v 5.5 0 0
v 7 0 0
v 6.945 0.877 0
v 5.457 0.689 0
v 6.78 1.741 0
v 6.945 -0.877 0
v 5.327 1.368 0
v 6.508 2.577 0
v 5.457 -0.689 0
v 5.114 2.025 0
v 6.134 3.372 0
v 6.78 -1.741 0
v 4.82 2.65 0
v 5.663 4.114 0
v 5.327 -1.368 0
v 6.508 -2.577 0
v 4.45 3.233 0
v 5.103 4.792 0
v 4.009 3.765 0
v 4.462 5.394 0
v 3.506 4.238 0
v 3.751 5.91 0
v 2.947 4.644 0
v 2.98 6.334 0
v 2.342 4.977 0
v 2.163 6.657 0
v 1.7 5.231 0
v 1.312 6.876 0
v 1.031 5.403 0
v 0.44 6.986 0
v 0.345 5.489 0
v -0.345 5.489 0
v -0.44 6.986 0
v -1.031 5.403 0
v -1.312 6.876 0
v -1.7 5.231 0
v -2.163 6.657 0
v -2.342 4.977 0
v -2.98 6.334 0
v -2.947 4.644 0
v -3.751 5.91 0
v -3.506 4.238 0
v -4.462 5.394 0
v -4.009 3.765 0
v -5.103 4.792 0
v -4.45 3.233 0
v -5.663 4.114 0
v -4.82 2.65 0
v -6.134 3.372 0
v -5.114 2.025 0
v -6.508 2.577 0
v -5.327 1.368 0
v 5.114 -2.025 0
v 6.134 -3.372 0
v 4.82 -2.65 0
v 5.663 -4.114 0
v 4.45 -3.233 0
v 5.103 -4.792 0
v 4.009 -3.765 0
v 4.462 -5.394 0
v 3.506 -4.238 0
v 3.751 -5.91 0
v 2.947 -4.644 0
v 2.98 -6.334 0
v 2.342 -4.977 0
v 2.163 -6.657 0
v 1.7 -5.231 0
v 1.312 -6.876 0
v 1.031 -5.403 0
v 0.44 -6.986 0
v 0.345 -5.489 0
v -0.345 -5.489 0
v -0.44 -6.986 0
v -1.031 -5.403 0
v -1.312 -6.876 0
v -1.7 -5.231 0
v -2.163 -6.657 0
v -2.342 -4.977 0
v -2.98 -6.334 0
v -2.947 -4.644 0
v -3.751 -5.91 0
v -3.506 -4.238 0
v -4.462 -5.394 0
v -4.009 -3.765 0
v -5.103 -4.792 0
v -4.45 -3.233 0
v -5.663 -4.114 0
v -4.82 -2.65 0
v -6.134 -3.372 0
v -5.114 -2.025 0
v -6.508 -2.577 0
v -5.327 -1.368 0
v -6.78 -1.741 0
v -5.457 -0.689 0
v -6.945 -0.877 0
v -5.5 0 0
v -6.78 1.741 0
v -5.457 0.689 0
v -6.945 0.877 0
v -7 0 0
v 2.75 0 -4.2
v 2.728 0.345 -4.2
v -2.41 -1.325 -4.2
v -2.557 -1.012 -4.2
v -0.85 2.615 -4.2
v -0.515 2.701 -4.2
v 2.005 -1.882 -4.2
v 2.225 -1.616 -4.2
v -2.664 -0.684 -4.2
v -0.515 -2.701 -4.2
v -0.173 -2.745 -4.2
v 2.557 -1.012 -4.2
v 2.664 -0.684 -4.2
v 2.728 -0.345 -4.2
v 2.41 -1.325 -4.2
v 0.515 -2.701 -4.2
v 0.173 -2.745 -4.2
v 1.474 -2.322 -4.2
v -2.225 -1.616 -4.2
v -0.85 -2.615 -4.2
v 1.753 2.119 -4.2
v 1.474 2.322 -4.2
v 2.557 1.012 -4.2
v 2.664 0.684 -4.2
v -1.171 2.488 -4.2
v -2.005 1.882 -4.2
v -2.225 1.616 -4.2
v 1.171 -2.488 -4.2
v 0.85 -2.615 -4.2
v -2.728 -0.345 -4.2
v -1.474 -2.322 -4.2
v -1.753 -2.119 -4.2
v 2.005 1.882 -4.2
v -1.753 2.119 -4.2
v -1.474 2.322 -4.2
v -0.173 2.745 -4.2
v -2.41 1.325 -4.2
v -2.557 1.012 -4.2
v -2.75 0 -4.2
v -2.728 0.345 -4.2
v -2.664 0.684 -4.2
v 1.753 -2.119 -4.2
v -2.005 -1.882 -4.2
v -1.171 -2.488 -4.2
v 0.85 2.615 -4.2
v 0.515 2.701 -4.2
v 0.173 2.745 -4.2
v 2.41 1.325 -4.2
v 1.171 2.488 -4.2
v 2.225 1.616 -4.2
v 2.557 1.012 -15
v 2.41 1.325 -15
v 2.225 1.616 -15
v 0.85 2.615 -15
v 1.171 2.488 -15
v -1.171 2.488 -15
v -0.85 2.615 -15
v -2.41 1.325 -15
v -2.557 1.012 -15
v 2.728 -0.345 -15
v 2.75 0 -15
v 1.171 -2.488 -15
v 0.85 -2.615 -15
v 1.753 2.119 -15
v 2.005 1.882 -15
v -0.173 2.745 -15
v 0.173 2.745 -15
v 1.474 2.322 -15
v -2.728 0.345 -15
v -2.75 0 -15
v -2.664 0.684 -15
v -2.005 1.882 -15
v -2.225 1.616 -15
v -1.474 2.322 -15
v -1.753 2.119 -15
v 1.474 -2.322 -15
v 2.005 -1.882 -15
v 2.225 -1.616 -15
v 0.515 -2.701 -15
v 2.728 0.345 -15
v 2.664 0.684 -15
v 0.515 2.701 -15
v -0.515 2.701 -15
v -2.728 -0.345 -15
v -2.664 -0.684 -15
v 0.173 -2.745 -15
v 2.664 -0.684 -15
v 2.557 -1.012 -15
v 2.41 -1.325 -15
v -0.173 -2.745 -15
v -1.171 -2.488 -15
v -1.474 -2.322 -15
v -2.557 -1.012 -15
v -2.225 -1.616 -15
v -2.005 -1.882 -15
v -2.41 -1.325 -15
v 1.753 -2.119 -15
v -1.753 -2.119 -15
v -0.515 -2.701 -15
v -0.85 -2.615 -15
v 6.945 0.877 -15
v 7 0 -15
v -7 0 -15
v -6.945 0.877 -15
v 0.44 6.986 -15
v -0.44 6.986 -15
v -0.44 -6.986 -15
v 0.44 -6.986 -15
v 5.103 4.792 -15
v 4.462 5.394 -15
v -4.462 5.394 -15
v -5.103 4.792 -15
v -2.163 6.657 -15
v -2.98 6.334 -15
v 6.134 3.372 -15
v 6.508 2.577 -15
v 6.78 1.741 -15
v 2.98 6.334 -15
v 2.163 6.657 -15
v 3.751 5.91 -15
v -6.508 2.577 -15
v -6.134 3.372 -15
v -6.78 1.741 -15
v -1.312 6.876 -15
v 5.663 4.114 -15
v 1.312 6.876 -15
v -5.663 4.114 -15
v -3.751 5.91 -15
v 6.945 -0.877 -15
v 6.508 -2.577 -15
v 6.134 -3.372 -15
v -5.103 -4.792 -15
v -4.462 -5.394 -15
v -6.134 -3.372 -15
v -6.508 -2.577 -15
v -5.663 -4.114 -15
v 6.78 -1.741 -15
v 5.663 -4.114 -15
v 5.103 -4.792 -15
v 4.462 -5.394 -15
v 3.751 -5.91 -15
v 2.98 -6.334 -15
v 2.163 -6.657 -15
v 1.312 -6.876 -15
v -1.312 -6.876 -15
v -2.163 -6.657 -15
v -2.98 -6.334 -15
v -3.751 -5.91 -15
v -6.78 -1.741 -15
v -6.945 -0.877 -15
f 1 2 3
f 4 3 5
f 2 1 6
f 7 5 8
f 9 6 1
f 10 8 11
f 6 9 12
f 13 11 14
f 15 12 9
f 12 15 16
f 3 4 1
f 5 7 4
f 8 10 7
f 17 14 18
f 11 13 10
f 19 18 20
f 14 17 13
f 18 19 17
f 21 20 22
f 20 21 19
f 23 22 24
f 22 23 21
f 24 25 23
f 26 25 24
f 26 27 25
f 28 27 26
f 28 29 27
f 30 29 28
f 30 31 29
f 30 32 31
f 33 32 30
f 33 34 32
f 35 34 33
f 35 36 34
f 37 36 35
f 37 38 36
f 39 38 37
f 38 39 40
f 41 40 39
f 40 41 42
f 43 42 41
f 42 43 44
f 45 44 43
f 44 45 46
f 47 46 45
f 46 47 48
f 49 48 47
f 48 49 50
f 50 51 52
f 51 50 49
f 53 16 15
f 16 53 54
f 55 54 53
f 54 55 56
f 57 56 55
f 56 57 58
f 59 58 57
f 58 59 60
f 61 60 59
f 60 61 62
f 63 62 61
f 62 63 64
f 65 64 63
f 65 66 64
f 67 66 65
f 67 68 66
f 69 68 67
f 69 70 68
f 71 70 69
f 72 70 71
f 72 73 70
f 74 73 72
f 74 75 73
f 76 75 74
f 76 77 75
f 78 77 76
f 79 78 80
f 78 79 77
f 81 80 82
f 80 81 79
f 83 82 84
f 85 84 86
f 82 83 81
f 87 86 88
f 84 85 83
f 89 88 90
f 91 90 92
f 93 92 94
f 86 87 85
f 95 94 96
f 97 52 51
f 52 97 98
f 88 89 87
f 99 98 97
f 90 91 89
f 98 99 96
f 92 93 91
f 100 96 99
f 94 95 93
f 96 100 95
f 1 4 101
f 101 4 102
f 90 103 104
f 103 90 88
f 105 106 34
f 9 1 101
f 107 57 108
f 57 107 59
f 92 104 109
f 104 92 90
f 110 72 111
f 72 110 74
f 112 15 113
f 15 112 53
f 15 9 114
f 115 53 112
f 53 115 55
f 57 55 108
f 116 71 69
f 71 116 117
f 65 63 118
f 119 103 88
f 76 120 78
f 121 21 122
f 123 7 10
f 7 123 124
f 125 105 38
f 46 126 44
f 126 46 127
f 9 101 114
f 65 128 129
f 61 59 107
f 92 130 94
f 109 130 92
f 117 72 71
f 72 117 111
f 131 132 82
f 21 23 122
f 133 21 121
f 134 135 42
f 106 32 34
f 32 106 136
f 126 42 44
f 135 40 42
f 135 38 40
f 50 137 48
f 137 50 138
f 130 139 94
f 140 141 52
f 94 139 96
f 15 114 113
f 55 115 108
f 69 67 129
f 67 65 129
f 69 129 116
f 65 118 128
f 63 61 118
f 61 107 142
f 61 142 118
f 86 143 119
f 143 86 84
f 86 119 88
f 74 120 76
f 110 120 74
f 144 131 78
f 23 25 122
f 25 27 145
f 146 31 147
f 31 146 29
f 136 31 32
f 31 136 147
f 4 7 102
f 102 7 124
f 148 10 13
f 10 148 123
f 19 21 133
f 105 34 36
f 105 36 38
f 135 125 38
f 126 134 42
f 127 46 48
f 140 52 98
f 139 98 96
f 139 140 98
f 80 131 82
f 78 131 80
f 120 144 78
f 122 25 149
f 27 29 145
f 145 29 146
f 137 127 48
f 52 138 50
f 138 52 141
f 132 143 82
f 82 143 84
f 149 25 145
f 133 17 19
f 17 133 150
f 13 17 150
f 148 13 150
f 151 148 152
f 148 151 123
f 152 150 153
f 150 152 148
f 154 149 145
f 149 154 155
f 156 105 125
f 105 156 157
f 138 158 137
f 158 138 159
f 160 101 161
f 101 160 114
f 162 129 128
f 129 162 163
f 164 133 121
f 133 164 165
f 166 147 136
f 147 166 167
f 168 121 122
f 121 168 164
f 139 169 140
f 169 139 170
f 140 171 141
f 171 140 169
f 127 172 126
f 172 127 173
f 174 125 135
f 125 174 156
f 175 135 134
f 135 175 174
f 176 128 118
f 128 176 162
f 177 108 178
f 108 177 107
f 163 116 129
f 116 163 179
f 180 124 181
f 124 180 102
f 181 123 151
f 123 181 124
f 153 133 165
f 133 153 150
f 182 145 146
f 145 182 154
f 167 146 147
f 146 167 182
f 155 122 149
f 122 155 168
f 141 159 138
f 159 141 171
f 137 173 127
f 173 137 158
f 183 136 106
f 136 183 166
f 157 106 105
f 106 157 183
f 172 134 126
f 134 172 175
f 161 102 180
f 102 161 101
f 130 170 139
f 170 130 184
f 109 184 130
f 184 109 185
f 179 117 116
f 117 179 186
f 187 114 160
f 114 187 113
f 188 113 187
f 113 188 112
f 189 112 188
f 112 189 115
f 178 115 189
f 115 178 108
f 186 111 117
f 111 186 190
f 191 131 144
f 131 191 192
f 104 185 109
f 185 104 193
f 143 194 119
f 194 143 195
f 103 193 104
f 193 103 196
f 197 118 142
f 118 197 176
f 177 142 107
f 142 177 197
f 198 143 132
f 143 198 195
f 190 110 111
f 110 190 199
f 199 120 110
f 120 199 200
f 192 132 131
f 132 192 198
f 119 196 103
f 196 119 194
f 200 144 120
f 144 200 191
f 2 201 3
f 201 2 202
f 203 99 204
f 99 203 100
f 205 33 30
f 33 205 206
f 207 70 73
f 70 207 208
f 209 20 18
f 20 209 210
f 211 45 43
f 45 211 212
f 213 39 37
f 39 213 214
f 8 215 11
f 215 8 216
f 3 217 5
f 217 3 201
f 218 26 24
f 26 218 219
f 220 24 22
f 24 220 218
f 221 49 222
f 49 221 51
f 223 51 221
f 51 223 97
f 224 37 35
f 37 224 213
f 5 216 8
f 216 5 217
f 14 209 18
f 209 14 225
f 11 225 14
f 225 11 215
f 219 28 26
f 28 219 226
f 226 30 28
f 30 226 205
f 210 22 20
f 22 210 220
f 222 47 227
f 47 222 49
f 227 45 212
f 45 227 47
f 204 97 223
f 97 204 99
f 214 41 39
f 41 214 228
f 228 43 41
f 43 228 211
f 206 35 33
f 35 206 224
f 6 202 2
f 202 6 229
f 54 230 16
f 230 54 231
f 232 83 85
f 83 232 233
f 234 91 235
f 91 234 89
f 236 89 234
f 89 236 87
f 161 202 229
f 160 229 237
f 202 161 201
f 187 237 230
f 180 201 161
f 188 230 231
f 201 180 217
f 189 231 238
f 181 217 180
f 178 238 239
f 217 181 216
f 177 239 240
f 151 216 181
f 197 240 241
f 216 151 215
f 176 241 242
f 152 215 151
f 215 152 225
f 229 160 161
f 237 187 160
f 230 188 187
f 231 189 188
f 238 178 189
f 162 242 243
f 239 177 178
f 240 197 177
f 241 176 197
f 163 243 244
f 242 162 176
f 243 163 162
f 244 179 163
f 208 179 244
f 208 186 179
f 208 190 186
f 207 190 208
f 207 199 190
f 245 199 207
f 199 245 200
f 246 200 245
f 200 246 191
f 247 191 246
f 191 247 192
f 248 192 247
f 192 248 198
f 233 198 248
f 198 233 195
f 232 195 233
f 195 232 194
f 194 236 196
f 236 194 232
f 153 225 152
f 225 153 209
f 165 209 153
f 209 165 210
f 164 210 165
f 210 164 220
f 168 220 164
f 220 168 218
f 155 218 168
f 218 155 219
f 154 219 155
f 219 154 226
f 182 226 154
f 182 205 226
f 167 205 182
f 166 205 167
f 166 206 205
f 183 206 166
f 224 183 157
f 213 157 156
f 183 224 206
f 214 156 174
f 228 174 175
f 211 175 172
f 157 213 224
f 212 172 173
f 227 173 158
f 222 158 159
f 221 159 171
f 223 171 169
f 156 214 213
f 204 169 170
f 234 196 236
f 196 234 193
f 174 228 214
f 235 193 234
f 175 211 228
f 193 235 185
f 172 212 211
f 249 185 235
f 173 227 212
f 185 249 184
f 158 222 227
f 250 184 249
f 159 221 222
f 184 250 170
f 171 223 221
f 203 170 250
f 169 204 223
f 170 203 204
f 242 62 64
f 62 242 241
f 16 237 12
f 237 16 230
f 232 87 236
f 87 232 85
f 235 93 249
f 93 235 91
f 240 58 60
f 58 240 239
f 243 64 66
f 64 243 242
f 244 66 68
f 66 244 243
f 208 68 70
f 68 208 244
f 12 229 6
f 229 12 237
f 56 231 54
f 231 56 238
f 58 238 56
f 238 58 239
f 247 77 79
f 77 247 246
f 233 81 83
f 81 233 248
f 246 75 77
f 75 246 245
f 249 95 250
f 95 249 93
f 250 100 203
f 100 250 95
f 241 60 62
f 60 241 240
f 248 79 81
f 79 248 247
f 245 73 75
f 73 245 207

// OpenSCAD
$fn = 50;

difference() {
	union() {
		translate(v = [0, 0, -15.0]) {
			cylinder(h = 15, r = 7.0);
		}
	}
	union() {
		translate(v = [0, 0, 0]) {
			rotate(a = [0, 0, 0]) {
				difference() {
					union() {
						translate(v = [0, 0, -18.0]) {
							cylinder(h = 18, r = 2.25);
						}
						translate(v = [0, 0, -4.2]) {
							cylinder(h = 4.2, r1 = 2.75, r2 = 5.5);
						}
						translate(v = [0, 0, -18.0]) {
							cylinder(h = 18, r = 2.75);
						}
						translate(v = [0, 0, -18.0]) {
							cylinder(h = 18, r = 2.25);
						}
					}
					union();
				}
			}
		}
	}
}
